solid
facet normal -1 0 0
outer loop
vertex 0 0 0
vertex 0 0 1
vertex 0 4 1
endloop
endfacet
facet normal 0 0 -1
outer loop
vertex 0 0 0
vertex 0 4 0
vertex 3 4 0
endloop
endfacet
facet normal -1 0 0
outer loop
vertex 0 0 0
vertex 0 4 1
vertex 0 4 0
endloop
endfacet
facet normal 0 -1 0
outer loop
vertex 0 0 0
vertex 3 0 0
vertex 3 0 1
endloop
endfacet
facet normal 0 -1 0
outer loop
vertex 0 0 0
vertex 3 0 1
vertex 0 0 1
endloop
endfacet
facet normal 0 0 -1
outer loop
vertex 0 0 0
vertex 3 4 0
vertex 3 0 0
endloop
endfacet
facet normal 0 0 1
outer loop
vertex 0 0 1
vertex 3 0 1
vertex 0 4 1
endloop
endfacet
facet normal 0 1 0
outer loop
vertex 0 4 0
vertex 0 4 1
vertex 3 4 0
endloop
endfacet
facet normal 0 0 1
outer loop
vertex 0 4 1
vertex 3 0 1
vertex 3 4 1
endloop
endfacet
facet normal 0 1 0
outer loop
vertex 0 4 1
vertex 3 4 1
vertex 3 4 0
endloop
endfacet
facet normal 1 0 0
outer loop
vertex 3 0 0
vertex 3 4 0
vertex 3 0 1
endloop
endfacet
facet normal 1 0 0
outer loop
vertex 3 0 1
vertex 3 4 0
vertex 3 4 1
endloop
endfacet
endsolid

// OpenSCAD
/* Warning, this is a very basic generator with a lot of approximation 
input data : [VDFN, QAB, 3x4x1mm, 14, , A, C04-21360A]
generated by com.zoubworld.electronics.cad.model3d.Basic
Date : Sun Feb 15 10:50:49 CET 2026
*/

//body
color("black")
translate([0,0,0])
cube([3.0,4.0,1.0], center=false);
